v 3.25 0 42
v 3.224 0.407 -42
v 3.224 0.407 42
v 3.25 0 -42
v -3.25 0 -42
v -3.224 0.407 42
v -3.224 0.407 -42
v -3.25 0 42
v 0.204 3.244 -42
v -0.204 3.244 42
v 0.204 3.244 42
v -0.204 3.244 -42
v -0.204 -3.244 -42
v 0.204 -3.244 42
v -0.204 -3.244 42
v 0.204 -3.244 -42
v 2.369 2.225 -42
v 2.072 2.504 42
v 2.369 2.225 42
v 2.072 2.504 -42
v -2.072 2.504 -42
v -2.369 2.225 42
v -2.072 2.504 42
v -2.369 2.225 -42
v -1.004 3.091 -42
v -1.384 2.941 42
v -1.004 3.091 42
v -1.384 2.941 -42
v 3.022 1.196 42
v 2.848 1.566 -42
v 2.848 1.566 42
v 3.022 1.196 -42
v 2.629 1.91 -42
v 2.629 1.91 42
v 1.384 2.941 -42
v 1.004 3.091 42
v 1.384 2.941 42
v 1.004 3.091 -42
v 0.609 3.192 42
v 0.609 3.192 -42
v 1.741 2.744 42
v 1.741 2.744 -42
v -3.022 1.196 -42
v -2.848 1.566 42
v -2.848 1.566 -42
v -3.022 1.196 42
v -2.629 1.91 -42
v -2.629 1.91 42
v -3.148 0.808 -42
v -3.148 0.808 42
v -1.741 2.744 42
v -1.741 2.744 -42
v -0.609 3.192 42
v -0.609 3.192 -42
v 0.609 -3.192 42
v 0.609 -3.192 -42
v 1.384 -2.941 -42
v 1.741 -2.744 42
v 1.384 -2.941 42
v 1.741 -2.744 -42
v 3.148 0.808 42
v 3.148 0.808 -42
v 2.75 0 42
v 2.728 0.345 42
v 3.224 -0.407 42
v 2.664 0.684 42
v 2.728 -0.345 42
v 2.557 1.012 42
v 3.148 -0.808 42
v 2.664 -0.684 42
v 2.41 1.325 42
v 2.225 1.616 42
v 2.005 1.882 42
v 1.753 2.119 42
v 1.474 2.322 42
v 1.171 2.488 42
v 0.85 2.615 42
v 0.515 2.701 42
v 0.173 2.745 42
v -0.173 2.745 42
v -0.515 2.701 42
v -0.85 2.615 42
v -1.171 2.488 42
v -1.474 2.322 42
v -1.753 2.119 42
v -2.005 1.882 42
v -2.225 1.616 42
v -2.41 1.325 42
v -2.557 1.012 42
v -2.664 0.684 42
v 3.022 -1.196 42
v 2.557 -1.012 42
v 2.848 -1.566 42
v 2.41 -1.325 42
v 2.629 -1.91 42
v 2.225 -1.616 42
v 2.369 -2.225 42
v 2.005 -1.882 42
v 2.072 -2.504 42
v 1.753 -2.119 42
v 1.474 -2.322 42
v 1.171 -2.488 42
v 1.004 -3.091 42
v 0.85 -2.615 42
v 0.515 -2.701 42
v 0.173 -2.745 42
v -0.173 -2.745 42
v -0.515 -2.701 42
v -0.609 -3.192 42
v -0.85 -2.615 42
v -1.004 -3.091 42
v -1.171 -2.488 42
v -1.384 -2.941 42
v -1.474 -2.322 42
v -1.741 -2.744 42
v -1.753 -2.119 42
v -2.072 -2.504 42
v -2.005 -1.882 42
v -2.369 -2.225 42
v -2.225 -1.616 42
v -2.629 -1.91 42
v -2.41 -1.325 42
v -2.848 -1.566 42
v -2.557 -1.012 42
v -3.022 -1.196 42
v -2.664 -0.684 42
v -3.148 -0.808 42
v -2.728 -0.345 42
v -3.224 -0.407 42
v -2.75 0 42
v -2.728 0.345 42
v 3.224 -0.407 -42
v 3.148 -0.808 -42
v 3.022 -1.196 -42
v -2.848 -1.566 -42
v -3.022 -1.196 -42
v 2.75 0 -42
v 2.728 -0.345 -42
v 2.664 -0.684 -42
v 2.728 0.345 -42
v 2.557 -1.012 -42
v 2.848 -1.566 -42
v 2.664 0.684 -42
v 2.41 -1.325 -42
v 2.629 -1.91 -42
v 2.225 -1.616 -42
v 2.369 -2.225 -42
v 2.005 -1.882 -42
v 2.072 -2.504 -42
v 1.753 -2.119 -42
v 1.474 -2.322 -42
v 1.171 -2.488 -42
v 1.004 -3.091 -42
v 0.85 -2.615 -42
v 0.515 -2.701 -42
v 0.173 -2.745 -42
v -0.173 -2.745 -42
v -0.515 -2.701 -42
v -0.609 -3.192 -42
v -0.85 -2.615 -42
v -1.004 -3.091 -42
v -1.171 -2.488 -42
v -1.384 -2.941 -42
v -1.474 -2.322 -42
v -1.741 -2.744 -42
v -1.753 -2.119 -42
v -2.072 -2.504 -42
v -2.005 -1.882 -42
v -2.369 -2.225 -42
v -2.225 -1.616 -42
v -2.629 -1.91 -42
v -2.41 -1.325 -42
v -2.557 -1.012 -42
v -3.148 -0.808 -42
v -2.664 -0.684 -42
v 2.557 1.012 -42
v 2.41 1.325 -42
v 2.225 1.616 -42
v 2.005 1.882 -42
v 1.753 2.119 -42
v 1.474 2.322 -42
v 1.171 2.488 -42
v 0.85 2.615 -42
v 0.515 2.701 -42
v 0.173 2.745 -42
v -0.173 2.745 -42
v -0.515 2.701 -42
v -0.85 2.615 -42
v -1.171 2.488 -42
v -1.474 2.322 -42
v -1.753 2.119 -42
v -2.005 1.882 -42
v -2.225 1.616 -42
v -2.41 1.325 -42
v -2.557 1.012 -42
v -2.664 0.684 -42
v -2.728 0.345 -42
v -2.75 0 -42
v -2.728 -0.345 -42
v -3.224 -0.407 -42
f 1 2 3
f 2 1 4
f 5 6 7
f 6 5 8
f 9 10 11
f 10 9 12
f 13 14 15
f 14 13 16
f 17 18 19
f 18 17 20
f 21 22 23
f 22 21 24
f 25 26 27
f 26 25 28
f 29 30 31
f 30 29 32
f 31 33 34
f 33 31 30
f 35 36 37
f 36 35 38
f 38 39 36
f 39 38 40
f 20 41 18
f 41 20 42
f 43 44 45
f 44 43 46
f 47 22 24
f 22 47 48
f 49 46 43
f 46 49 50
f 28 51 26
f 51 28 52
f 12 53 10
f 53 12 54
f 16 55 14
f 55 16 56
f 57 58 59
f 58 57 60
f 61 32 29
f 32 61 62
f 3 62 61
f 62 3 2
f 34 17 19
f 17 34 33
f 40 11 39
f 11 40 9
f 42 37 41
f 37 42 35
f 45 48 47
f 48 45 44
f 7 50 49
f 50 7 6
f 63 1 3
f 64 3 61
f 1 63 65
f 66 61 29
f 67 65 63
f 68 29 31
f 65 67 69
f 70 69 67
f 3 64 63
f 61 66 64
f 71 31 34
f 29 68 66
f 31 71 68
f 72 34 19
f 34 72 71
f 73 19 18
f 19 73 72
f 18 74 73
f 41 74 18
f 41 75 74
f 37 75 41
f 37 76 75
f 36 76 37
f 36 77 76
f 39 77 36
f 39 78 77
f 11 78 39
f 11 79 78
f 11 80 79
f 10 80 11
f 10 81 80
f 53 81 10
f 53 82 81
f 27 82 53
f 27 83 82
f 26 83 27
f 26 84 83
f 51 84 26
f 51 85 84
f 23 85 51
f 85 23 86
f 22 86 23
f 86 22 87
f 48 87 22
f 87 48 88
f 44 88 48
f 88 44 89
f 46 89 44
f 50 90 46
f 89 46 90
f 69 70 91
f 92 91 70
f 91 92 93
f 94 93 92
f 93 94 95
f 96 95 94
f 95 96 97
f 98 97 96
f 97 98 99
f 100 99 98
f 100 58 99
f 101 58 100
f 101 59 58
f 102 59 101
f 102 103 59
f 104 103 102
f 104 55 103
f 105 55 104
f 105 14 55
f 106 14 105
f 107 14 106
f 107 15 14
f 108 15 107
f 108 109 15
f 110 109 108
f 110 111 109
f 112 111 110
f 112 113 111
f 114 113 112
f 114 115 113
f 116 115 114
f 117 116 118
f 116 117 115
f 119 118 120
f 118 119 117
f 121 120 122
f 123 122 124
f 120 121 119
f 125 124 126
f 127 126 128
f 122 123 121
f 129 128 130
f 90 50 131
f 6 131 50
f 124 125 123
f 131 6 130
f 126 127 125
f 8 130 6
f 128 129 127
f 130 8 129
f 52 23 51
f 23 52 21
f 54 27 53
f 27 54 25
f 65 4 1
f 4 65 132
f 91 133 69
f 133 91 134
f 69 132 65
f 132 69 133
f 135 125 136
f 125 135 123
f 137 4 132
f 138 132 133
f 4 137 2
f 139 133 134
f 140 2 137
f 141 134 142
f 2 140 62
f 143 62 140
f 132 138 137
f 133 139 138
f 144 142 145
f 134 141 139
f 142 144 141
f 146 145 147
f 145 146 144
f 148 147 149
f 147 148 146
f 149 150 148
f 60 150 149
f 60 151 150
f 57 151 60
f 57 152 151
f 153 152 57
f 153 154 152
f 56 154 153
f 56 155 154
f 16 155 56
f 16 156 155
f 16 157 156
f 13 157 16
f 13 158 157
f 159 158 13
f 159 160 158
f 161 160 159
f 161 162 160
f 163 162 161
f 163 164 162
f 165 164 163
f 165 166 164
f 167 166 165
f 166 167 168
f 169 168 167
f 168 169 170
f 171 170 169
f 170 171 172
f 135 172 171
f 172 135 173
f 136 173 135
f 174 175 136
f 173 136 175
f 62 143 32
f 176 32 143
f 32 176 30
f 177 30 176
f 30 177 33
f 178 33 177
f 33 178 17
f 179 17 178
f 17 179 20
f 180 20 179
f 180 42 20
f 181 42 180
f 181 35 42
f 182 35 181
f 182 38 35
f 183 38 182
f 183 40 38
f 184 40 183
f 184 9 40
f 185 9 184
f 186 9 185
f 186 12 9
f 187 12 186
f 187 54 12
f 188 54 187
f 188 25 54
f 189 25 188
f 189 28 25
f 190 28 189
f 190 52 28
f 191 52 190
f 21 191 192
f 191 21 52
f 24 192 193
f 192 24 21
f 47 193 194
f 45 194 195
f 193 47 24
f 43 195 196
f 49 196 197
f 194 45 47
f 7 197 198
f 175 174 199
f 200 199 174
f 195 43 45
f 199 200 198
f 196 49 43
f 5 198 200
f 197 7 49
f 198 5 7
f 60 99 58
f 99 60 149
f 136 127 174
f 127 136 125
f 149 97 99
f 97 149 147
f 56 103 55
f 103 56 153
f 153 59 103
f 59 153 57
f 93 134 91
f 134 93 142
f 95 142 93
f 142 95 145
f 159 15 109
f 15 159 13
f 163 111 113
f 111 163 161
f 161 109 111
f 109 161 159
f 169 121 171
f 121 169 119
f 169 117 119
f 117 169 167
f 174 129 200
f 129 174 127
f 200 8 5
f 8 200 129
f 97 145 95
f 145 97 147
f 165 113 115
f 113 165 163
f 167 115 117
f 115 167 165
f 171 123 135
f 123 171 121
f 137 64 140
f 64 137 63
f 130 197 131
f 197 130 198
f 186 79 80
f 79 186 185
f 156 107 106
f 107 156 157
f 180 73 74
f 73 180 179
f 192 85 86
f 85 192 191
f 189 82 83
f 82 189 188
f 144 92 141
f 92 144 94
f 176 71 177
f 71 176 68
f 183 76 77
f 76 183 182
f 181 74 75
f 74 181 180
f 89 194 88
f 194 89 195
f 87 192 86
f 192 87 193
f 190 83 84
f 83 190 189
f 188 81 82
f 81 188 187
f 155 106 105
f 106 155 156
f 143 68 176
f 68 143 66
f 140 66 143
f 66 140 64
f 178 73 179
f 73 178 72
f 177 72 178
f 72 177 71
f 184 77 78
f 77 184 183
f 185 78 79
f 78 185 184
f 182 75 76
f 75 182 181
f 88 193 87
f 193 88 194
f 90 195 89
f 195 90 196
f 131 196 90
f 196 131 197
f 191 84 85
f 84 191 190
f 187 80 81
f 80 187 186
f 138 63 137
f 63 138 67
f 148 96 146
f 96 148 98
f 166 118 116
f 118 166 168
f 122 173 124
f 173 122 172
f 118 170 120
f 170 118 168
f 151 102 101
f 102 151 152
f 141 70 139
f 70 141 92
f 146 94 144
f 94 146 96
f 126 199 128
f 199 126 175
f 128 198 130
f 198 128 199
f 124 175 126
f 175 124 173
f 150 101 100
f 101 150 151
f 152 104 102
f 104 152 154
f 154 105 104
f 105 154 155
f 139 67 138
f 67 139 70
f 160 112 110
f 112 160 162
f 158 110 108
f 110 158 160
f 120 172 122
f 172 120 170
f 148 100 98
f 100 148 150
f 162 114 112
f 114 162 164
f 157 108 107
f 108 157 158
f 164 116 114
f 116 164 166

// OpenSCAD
$fn = 50;


difference() {
	union() {
		translate(v = [0, 0, -42.0000000000]) {
			cylinder(h = 84, r = 3.2500000000);
		}
	}
	union() {
		translate(v = [0, 0, -100.0000000000]) {
			cylinder(h = 200, r = 2.7500000000);
		}
	}
}
